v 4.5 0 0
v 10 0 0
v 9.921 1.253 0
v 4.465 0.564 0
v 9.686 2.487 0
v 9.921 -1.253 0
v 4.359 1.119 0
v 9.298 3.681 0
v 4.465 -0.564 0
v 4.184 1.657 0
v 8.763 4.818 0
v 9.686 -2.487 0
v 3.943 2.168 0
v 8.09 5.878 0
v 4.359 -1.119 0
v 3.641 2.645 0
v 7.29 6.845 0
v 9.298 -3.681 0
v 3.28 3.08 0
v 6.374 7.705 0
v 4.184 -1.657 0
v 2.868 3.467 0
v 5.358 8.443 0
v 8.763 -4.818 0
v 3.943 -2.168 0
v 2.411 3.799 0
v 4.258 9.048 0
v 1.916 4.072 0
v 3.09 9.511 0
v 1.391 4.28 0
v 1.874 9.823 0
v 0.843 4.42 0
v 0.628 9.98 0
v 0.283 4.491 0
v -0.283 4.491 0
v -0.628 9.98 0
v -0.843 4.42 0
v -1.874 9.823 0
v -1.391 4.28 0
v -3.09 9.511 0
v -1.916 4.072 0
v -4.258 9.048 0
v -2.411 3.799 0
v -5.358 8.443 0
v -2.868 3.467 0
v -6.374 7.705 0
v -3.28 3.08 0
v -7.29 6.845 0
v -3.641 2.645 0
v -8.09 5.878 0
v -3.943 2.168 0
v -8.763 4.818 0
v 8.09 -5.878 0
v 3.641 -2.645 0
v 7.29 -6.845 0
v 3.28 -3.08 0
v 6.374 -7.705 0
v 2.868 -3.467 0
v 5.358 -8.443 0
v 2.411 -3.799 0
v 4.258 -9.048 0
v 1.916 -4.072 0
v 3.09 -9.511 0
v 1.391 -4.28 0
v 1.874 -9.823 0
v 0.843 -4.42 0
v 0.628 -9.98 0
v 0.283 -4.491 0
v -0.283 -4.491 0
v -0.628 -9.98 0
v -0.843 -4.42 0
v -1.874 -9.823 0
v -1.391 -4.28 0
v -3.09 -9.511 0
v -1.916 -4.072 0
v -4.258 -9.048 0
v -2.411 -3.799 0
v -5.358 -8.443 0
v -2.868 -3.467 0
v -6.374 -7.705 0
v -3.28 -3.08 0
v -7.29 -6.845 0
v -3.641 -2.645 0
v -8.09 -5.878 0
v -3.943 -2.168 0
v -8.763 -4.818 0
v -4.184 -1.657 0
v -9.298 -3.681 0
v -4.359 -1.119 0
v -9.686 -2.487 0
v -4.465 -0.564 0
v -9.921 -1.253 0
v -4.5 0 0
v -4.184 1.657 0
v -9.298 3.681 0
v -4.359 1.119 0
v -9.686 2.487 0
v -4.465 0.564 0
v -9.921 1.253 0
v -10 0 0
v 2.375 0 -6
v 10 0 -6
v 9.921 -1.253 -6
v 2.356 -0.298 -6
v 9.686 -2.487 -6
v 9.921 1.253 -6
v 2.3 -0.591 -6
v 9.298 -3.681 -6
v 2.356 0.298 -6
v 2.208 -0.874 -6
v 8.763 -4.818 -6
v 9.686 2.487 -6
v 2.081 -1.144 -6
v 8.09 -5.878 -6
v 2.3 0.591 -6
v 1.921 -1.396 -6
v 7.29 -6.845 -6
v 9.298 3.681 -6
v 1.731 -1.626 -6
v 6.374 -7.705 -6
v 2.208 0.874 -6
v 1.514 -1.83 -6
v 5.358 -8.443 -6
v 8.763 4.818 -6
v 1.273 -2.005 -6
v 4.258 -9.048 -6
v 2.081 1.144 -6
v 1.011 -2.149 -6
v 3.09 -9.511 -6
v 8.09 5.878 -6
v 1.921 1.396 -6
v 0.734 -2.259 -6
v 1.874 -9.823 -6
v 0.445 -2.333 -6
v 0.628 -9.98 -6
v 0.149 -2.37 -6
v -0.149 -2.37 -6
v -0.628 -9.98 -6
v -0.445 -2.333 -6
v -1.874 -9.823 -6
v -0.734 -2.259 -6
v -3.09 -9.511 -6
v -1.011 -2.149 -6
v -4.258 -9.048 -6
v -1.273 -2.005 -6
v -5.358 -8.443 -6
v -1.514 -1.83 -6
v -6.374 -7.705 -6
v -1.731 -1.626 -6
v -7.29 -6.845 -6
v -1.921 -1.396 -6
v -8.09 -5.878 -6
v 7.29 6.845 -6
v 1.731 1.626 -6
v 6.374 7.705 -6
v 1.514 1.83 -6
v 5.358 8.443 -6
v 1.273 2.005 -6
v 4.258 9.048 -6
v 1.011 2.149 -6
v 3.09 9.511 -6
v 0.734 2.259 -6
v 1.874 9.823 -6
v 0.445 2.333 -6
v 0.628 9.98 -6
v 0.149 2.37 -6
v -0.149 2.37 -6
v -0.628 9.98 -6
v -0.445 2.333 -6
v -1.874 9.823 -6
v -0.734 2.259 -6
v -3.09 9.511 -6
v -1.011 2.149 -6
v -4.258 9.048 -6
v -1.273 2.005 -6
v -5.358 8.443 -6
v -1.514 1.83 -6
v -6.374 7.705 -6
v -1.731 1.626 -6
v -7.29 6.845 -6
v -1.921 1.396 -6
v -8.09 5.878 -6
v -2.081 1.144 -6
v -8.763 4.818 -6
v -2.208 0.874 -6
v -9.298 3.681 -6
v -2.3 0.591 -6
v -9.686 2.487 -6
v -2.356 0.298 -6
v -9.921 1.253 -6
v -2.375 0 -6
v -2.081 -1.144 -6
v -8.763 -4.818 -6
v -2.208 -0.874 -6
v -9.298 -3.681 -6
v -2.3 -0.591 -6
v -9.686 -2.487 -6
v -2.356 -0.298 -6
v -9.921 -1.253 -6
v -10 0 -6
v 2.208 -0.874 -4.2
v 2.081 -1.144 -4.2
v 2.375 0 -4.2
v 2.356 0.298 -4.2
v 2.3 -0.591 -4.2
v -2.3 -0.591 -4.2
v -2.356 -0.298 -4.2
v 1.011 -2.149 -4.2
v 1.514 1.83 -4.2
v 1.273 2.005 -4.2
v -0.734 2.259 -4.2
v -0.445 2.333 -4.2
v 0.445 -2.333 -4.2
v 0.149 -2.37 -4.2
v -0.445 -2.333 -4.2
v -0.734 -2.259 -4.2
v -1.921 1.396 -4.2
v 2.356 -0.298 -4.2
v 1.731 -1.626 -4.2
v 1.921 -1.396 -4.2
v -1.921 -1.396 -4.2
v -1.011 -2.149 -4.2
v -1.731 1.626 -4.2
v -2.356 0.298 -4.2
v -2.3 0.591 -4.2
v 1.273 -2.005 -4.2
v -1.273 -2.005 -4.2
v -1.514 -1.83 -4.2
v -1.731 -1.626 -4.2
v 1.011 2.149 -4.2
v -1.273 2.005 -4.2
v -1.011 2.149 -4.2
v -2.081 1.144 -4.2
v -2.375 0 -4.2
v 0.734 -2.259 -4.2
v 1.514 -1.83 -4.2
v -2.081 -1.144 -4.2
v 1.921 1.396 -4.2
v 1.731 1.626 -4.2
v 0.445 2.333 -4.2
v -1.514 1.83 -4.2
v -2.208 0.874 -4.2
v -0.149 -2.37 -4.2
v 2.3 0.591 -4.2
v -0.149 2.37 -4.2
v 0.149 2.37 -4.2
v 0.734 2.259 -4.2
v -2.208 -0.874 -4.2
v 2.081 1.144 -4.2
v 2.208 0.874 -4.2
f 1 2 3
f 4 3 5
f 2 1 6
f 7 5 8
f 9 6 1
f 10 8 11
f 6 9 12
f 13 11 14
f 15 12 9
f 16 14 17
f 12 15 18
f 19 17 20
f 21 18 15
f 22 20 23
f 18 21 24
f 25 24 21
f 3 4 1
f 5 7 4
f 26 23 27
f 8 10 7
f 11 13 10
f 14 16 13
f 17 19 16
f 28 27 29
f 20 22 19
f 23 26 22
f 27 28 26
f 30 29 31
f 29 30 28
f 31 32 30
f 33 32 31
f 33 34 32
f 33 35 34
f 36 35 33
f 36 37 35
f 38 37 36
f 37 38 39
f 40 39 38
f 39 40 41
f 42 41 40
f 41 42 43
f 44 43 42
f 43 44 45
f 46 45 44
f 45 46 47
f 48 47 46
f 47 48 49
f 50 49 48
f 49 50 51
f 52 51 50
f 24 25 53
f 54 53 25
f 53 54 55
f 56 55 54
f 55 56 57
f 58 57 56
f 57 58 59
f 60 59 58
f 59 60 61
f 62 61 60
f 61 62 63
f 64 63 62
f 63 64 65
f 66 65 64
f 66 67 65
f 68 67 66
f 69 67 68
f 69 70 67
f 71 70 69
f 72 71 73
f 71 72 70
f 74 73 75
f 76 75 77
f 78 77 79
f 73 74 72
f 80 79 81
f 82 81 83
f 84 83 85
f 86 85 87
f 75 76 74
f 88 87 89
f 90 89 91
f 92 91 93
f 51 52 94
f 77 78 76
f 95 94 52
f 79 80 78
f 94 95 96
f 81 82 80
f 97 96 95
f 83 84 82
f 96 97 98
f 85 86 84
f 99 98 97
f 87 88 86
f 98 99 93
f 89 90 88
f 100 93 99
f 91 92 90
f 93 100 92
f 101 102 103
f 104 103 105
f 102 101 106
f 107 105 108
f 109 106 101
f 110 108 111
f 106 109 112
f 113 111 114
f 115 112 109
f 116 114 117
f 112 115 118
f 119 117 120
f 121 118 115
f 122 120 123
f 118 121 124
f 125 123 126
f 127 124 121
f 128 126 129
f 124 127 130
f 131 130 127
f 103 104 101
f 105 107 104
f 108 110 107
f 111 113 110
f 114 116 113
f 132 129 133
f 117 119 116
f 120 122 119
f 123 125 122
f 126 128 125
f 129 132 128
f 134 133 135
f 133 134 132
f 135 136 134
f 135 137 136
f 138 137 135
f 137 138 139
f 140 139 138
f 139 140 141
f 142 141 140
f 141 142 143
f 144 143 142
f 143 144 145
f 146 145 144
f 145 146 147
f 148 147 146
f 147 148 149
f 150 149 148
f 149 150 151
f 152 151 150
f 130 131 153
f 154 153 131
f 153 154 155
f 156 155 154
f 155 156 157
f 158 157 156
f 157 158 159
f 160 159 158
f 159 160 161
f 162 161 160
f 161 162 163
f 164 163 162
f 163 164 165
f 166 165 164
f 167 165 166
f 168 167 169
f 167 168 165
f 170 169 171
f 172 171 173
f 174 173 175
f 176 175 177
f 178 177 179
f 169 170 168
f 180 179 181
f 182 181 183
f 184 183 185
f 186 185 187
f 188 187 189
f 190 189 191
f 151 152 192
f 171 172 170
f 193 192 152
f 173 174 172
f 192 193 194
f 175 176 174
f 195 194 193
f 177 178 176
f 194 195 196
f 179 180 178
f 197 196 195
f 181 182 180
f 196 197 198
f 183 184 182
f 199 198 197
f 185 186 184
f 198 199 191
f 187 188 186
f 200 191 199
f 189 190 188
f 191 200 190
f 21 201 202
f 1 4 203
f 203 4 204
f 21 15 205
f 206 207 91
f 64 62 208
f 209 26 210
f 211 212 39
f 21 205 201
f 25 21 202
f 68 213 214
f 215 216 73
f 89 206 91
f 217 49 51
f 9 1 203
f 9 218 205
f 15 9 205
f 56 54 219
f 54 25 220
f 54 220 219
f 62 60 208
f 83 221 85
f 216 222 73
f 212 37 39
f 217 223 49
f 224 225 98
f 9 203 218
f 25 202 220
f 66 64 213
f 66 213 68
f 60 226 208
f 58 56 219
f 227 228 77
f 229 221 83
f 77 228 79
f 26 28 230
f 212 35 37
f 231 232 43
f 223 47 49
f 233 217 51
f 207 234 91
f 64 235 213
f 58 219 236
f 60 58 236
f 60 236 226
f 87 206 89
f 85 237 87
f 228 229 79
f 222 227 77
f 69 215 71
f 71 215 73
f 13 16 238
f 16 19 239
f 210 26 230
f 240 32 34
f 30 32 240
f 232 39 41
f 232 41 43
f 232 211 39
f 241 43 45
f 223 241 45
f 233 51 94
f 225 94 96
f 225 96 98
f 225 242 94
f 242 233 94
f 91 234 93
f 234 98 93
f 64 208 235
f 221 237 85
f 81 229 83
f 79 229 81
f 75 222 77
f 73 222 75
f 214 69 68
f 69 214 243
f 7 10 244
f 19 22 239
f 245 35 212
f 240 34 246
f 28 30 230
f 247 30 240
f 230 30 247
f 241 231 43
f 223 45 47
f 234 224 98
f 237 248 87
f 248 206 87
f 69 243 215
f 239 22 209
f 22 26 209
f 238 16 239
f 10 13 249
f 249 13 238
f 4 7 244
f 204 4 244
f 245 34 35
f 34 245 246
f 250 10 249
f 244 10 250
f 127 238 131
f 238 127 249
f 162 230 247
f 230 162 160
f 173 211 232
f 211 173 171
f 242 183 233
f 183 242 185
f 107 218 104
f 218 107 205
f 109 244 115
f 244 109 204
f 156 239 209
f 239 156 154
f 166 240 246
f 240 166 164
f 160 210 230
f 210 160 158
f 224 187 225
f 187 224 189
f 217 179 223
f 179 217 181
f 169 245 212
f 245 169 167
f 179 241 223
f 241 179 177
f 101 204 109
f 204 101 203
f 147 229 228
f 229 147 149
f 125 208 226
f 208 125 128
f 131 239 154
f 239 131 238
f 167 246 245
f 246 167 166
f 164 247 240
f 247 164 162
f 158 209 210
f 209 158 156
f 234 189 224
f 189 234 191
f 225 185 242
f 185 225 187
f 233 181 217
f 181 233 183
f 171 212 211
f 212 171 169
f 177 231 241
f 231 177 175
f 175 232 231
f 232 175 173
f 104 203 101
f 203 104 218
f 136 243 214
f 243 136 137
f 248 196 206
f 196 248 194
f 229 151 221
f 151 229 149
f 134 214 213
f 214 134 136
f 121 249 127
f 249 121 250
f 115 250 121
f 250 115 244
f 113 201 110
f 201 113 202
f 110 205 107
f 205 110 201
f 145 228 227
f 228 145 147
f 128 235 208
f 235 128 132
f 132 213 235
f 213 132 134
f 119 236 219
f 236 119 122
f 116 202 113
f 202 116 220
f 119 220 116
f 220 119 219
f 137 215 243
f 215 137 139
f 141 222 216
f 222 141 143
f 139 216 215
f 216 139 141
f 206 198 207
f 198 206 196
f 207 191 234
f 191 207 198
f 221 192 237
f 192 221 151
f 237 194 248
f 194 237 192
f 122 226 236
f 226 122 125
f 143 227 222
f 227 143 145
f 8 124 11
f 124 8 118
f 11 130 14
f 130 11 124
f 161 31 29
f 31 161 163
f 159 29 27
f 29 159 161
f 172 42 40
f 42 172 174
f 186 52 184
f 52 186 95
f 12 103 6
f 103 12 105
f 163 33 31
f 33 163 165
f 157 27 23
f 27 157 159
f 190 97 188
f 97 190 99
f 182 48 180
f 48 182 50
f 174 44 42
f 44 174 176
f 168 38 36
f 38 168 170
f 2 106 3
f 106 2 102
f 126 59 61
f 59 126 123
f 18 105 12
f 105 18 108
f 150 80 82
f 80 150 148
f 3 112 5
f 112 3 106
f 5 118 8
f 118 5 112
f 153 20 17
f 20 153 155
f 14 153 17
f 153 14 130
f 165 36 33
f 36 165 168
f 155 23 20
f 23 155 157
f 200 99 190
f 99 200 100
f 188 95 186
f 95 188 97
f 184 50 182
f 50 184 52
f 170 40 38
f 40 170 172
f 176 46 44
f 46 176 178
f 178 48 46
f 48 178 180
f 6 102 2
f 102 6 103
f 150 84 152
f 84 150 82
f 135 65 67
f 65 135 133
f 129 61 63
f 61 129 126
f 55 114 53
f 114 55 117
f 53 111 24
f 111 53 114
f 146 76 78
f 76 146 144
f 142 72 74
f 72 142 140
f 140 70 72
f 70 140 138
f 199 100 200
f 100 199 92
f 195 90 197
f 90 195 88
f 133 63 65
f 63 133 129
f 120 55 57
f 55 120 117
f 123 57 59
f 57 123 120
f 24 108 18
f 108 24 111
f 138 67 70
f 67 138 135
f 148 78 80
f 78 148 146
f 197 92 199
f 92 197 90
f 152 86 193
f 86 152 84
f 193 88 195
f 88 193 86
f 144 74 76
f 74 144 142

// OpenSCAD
$fn = 50;


difference() {
	union() {
		translate(v = [0, 0, -6.0000000000]) {
			cylinder(h = 6, r = 10.0000000000);
		}
		cylinder(h = 0, r = 19.0000000000);
	}
	union() {
		translate(v = [0, 0, 0]) {
			rotate(a = [0, 0, 0]) {
				difference() {
					union() {
						#translate(v = [0, 0, -6.0000000000]) {
							cylinder(h = 6, r = 2.2500000000);
						}
						#translate(v = [0, 0, -4.2000000000]) {
							cylinder(h = 4.2000000000, r1 = 2.3750000000, r2 = 4.5000000000);
						}
						#translate(v = [0, 0, -6.0000000000]) {
							cylinder(h = 6, r = 2.3750000000);
						}
						#translate(v = [0, 0, -6.0000000000]) {
							cylinder(h = 6, r = 2.2500000000);
						}
					}
					union();
				}
			}
		}
	}
}
